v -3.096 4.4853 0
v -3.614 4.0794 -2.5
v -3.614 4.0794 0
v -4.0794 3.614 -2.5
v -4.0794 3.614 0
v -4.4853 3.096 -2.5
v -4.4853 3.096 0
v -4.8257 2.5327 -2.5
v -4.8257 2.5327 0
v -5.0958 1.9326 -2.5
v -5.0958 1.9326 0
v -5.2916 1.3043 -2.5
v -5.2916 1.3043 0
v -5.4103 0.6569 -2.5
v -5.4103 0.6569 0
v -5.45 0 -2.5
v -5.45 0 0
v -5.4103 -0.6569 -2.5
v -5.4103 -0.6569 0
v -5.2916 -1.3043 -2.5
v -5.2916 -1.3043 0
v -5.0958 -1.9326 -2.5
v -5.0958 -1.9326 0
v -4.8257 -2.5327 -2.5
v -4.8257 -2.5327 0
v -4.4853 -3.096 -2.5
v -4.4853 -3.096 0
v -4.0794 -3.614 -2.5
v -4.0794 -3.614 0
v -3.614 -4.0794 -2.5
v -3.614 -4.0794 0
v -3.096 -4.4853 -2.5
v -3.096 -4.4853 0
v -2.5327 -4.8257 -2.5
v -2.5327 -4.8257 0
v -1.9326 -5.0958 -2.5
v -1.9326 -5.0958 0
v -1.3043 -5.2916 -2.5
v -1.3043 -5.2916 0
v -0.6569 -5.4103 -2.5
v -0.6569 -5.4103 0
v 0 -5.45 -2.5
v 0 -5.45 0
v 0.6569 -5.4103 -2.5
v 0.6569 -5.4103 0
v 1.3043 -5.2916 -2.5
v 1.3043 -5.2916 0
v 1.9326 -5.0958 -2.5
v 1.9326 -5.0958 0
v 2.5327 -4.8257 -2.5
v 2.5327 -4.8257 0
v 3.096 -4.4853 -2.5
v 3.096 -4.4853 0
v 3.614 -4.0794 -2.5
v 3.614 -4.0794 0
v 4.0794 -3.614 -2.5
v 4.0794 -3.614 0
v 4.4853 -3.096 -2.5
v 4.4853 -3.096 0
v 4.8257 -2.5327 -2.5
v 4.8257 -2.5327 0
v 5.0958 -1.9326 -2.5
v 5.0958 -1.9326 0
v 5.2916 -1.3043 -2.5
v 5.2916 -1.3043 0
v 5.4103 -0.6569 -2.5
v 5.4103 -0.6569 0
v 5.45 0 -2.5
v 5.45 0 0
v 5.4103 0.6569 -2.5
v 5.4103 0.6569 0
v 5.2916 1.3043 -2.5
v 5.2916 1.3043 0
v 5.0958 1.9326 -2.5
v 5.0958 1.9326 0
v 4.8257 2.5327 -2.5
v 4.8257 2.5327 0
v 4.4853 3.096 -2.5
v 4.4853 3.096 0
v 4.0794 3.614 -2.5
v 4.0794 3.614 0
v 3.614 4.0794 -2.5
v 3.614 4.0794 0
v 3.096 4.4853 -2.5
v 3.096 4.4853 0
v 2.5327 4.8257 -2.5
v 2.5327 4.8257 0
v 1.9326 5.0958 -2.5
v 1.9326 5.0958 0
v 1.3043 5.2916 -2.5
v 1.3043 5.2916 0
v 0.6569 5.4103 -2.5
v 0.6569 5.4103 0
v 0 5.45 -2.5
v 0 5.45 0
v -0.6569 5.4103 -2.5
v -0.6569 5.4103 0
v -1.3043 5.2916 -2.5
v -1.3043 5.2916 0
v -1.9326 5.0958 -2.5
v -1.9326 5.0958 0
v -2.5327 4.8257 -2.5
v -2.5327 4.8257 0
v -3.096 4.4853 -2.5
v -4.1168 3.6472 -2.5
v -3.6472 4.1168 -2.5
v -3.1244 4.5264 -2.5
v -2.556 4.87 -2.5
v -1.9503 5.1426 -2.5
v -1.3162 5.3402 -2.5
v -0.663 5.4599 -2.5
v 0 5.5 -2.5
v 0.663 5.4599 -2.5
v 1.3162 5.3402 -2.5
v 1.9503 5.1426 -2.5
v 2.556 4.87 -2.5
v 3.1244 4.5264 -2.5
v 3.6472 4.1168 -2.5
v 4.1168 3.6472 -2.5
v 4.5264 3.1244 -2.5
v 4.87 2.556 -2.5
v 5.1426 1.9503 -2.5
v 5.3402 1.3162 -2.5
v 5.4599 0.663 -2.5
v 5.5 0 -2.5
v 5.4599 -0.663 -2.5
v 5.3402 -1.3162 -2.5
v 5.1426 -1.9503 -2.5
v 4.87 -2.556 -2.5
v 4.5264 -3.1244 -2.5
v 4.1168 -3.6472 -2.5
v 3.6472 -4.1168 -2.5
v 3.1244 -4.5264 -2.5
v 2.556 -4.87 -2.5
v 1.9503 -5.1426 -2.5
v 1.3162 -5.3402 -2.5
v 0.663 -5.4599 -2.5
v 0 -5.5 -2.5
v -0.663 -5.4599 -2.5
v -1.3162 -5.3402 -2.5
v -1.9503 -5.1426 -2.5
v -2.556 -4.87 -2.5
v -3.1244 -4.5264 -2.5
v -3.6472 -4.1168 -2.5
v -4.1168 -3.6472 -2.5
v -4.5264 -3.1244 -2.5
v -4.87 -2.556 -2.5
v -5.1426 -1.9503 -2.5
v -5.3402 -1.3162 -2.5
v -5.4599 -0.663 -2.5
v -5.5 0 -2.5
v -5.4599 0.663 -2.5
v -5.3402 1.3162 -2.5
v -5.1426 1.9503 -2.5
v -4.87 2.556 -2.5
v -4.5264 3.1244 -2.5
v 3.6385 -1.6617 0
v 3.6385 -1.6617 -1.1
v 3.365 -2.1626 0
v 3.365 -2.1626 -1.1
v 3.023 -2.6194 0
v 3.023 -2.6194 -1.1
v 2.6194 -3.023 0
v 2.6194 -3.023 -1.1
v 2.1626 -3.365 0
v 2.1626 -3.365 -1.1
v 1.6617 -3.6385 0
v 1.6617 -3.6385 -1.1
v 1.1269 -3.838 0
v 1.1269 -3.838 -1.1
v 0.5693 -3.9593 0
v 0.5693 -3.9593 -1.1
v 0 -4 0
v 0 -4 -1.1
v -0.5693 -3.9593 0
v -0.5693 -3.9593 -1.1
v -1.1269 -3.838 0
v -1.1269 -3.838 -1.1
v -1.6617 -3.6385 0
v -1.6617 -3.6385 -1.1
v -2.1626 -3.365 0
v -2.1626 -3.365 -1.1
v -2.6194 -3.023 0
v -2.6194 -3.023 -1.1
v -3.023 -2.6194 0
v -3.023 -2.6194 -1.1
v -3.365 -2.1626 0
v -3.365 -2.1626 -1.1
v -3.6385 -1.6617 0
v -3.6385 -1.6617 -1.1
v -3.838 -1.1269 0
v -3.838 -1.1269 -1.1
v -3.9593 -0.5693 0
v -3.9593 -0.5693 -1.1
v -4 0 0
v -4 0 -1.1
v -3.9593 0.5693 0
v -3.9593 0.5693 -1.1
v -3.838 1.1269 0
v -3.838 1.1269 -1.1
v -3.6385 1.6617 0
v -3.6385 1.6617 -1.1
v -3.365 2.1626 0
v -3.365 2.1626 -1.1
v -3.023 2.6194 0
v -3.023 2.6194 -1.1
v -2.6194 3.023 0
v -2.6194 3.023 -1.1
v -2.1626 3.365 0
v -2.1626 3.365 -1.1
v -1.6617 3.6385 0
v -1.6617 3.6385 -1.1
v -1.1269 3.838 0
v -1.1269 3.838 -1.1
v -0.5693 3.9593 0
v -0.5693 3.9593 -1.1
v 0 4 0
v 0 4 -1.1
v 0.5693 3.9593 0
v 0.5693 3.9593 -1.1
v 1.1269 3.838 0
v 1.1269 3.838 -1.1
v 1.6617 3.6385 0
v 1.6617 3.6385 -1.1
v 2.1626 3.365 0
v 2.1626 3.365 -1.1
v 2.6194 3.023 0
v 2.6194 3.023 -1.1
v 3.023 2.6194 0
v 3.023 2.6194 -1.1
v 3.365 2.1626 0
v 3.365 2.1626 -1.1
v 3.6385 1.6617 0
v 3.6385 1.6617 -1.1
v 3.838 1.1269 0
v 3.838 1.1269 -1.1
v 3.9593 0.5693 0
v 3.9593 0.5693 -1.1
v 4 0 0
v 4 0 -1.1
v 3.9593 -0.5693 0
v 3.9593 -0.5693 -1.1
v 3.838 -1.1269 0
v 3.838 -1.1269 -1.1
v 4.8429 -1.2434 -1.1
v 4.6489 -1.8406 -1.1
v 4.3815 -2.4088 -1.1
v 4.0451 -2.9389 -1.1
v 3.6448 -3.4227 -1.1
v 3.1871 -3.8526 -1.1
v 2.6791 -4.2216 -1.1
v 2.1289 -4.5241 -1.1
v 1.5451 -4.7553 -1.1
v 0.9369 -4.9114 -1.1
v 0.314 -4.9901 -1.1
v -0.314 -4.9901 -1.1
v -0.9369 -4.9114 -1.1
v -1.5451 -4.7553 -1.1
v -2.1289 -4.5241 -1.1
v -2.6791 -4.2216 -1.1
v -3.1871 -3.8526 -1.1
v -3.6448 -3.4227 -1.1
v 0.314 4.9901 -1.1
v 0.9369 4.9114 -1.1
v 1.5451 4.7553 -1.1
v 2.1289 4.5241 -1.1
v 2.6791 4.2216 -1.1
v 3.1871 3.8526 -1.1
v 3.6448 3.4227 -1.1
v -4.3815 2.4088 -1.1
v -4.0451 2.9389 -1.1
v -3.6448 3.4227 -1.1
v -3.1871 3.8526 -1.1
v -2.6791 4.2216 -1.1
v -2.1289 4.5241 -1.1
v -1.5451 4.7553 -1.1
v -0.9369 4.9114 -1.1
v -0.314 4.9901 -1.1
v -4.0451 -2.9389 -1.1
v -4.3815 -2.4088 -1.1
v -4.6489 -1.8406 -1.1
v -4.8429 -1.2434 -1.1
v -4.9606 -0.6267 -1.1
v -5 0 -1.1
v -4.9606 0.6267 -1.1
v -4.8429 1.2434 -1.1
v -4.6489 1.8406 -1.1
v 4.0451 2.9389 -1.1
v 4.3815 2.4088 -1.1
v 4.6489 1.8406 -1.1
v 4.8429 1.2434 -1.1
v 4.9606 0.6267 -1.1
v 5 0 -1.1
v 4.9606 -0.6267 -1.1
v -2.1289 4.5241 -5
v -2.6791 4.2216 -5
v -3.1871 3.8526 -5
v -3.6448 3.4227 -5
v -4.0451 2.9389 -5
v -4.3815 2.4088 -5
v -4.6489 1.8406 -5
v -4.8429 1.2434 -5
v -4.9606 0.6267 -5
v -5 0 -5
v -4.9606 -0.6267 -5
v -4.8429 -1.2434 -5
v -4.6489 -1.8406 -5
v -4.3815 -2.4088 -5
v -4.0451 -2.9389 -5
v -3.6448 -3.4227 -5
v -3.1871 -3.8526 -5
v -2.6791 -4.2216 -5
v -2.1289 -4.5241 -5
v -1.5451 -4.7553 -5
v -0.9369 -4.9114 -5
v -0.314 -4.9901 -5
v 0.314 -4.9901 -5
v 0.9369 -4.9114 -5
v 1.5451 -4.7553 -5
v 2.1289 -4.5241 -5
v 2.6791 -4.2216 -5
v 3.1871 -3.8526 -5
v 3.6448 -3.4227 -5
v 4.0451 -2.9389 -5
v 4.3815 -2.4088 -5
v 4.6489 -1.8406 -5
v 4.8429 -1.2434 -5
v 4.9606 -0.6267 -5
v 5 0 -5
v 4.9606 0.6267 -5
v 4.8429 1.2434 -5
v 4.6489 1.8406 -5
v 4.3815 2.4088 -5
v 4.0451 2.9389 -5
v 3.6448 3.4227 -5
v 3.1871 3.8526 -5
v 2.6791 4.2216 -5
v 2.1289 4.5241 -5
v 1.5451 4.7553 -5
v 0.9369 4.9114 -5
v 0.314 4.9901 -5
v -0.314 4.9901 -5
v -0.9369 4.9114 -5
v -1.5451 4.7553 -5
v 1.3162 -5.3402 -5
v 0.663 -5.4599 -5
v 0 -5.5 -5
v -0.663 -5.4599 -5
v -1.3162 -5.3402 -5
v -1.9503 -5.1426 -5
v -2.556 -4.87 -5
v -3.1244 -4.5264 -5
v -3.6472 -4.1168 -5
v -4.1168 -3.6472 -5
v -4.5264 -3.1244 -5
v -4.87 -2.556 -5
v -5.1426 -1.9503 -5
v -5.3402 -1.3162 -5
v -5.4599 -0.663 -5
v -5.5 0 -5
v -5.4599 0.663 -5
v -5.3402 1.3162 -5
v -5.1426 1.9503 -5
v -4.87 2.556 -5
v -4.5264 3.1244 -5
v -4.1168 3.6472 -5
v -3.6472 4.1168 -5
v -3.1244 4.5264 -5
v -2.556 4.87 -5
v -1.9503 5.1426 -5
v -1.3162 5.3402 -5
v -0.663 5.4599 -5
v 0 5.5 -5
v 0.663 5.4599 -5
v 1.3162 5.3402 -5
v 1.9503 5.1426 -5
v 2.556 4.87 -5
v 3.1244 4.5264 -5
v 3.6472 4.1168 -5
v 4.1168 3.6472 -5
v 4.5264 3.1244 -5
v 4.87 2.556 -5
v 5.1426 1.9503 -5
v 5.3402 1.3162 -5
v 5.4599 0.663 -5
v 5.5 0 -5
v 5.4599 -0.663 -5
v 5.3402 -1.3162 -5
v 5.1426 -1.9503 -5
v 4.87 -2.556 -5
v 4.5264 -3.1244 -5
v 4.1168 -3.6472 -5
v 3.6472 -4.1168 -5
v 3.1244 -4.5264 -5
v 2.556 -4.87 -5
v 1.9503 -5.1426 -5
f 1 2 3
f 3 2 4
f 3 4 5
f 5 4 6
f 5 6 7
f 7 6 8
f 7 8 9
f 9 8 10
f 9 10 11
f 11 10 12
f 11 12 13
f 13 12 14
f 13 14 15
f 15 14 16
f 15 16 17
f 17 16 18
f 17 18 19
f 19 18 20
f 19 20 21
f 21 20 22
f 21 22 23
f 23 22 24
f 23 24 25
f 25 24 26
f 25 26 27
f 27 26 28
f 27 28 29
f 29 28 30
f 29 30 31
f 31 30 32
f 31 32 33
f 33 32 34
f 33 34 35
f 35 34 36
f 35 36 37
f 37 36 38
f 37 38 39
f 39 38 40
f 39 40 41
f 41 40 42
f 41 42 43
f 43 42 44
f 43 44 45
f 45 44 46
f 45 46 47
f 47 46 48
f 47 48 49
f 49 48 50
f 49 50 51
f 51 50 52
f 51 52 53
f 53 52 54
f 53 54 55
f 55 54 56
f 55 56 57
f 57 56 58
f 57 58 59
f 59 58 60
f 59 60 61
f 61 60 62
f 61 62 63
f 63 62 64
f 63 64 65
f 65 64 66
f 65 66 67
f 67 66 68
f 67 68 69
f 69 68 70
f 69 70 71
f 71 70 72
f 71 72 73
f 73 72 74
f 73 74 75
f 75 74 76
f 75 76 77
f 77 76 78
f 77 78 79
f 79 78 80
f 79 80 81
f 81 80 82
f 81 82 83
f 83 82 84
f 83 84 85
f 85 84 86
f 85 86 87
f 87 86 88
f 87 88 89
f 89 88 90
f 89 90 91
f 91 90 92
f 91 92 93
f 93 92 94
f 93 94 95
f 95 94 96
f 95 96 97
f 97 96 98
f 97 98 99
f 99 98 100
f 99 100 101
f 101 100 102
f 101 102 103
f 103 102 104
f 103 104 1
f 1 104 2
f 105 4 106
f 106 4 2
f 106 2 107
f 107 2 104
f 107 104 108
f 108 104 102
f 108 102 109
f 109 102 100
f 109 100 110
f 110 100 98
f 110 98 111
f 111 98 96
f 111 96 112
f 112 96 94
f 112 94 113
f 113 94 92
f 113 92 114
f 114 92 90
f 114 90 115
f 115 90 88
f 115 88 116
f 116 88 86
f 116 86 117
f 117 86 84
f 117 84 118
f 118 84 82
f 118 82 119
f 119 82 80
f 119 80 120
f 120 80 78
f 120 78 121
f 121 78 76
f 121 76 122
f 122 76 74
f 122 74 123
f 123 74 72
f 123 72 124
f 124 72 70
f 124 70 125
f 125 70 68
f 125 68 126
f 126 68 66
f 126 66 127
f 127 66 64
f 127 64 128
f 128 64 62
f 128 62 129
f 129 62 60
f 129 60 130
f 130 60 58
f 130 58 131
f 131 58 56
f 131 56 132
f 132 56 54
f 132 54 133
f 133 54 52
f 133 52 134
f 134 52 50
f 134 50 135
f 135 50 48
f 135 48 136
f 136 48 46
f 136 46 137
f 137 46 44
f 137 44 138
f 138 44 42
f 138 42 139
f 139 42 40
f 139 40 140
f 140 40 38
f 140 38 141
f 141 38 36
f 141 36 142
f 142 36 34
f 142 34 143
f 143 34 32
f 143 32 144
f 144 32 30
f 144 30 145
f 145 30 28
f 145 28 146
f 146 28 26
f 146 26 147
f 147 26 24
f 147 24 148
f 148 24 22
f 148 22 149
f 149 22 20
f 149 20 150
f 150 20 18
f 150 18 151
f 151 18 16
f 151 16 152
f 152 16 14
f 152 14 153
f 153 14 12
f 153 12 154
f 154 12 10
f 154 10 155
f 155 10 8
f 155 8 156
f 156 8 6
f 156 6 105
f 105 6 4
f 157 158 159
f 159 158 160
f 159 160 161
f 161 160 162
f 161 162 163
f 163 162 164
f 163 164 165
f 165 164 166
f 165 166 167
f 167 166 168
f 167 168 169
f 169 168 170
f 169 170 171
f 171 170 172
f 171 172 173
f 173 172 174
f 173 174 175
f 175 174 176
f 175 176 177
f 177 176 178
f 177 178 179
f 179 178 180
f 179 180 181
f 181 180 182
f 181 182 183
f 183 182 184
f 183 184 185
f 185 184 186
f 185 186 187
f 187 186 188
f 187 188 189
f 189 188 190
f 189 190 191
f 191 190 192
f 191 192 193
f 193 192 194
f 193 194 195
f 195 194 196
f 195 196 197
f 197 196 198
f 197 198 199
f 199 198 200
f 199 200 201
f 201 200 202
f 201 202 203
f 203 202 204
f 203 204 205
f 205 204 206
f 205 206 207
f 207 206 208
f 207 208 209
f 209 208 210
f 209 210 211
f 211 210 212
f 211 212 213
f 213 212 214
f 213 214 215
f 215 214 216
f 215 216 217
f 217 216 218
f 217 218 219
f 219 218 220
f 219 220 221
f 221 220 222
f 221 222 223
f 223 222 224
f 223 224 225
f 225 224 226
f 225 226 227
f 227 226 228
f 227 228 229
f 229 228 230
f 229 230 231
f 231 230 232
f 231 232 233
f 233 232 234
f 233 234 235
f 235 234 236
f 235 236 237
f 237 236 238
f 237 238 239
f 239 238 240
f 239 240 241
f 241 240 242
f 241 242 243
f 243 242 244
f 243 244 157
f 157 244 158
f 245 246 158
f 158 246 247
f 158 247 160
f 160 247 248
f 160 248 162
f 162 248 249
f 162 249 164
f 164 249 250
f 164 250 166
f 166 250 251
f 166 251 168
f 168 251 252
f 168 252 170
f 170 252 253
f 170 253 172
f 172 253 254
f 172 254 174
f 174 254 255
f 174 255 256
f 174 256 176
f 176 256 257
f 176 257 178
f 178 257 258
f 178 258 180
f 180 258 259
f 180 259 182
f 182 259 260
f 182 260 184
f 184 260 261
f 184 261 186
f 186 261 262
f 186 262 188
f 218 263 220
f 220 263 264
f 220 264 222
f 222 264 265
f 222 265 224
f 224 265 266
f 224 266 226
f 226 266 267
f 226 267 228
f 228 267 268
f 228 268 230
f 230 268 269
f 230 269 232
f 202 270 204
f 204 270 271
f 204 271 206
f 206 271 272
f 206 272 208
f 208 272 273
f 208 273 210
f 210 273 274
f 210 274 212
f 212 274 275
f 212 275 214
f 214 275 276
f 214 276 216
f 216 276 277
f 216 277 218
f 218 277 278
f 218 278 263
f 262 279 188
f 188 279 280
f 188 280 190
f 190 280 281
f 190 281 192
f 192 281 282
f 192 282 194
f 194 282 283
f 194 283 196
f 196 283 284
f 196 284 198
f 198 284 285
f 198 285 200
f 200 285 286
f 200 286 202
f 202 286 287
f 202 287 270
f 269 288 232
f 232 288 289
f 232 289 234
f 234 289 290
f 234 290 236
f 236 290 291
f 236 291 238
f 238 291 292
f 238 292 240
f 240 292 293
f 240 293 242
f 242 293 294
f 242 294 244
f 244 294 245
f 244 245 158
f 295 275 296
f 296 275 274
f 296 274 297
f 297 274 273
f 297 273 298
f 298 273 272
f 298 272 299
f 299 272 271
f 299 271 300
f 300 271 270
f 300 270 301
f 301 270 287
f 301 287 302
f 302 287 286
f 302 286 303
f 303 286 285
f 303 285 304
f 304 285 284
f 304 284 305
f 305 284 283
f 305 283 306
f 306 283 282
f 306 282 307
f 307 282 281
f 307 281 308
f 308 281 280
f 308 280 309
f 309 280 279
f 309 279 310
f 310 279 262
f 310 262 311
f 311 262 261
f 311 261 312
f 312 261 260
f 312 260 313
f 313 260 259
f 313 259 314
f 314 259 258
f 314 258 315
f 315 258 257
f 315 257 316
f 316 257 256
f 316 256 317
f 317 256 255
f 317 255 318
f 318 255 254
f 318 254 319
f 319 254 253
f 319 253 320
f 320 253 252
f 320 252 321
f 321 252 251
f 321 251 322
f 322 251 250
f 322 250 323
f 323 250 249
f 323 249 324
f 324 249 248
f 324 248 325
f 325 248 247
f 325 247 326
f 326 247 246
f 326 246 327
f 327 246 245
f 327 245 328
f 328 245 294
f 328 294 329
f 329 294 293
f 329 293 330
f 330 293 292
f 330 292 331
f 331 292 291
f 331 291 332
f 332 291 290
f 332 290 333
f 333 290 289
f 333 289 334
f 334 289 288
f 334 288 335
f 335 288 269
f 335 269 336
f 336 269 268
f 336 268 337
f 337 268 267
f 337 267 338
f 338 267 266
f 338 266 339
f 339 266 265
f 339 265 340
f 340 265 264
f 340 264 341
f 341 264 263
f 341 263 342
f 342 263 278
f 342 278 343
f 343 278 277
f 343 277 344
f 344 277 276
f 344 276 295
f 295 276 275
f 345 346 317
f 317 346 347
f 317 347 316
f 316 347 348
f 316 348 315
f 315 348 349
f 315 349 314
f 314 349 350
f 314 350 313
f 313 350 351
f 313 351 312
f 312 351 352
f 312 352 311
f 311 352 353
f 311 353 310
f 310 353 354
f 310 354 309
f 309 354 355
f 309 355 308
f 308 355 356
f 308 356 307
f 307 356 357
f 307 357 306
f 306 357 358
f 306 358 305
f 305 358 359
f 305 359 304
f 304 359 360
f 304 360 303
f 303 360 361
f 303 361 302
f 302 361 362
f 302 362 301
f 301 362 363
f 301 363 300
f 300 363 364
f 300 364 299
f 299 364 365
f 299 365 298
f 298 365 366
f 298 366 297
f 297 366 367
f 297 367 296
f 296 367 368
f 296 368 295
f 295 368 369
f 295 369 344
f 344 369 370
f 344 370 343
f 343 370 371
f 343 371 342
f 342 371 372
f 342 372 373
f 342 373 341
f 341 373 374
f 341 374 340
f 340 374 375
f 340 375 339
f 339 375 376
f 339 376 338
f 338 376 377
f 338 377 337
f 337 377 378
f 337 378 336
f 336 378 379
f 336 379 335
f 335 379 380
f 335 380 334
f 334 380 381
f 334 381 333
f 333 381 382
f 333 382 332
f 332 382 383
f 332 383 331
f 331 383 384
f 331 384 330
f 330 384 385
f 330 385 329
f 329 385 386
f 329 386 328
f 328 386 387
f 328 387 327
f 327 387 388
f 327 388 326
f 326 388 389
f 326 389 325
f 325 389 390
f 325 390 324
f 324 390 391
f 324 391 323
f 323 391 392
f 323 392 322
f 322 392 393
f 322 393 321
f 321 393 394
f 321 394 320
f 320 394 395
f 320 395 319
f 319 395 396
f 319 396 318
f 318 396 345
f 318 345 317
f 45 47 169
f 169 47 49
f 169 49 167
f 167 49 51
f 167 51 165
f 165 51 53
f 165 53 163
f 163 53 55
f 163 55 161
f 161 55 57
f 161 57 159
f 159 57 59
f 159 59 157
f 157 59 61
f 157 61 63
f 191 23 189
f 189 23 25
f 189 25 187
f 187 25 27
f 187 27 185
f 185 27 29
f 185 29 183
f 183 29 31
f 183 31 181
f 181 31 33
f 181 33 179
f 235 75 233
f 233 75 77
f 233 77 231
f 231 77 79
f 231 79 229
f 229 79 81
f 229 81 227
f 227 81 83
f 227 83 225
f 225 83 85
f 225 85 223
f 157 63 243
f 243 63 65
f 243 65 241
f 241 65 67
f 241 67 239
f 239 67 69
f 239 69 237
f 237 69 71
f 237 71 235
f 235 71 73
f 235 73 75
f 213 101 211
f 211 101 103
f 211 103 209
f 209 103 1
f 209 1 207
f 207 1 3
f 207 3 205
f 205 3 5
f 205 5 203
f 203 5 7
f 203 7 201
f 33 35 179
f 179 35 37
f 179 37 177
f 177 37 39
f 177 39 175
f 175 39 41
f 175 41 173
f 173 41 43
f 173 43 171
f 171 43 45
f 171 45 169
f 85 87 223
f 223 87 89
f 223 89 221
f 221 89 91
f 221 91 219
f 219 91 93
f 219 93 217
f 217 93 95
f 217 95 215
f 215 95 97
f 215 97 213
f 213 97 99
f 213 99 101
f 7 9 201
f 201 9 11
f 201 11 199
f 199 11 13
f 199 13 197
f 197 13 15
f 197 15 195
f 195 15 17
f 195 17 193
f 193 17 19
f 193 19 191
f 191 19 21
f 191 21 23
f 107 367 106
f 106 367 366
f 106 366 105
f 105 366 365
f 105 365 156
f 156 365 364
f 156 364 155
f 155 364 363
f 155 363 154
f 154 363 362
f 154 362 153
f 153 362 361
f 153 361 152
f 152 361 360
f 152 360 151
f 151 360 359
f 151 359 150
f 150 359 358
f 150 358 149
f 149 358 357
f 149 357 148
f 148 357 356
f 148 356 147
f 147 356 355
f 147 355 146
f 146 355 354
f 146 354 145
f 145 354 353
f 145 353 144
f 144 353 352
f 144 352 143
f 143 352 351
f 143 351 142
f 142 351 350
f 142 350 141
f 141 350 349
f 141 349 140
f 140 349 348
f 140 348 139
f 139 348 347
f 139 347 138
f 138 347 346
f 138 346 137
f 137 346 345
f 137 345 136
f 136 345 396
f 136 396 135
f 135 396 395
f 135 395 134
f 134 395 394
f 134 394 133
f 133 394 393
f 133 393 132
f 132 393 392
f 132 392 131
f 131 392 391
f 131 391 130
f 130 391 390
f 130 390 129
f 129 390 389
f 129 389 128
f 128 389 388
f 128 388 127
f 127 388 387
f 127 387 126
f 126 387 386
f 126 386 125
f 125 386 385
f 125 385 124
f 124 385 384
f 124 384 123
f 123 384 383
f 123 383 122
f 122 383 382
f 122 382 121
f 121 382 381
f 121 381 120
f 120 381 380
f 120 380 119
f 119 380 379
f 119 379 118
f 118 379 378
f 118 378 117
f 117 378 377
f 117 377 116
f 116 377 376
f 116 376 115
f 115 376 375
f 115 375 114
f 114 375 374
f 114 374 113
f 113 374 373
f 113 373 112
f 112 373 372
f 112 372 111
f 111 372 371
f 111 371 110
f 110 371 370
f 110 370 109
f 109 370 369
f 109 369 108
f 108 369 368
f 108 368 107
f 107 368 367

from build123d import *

# Parameters (mm, degrees)
SKETCH1_R           = 5.5
BOSS_EXTRUDE1_DEPTH = 5
SKETCH2_R           = 5
CUT_EXTRUDE1_DEPTH  = 3.9
CUT_EXTRUDE2_REACH  = 7
SKETCH3_R           = 4
SKETCH4_OUTSIDE_W   = 16.268
SKETCH4_OUTSIDE_H   = 16.268
SKETCH4_OUTSIDE_R   = 5.45
CUT_EXTRUDE3_DEPTH  = 2.5


with BuildPart() as part:
    # Sketch1 → Boss-Extrude1 (new body)
    with BuildSketch(Plane.XY):
        Circle(SKETCH1_R)
    extrude(amount=-BOSS_EXTRUDE1_DEPTH)

    # Sketch2 → Cut-Extrude1 (cut)
    with BuildSketch(Plane(origin=(0, 0, -5), x_dir=(-1, 0, 0), z_dir=(0, 0, -1))):
        Circle(SKETCH2_R)
    extrude(amount=-CUT_EXTRUDE1_DEPTH, mode=Mode.SUBTRACT)

    # Sketch3 → Cut-Extrude2 (cut, up to next)
    with BuildSketch(Plane.XY, mode=Mode.PRIVATE) as cut_extrude2_sk1:
        Circle(SKETCH3_R)
    cut_extrude2_tool1 = extrude(cut_extrude2_sk1.sketch, amount=-CUT_EXTRUDE2_REACH, mode=Mode.PRIVATE) & part.part
    add(cut_extrude2_tool1.solids().sort_by_distance((0, 0, 0))[0], mode=Mode.SUBTRACT)

    # Sketch4 outside → Cut-Extrude3 (cut)
    with BuildSketch(Plane.XY):
        Rectangle(SKETCH4_OUTSIDE_W, SKETCH4_OUTSIDE_H)
        Circle(SKETCH4_OUTSIDE_R, mode=Mode.SUBTRACT)
    extrude(amount=-CUT_EXTRUDE3_DEPTH, mode=Mode.SUBTRACT)


solid = part.part
